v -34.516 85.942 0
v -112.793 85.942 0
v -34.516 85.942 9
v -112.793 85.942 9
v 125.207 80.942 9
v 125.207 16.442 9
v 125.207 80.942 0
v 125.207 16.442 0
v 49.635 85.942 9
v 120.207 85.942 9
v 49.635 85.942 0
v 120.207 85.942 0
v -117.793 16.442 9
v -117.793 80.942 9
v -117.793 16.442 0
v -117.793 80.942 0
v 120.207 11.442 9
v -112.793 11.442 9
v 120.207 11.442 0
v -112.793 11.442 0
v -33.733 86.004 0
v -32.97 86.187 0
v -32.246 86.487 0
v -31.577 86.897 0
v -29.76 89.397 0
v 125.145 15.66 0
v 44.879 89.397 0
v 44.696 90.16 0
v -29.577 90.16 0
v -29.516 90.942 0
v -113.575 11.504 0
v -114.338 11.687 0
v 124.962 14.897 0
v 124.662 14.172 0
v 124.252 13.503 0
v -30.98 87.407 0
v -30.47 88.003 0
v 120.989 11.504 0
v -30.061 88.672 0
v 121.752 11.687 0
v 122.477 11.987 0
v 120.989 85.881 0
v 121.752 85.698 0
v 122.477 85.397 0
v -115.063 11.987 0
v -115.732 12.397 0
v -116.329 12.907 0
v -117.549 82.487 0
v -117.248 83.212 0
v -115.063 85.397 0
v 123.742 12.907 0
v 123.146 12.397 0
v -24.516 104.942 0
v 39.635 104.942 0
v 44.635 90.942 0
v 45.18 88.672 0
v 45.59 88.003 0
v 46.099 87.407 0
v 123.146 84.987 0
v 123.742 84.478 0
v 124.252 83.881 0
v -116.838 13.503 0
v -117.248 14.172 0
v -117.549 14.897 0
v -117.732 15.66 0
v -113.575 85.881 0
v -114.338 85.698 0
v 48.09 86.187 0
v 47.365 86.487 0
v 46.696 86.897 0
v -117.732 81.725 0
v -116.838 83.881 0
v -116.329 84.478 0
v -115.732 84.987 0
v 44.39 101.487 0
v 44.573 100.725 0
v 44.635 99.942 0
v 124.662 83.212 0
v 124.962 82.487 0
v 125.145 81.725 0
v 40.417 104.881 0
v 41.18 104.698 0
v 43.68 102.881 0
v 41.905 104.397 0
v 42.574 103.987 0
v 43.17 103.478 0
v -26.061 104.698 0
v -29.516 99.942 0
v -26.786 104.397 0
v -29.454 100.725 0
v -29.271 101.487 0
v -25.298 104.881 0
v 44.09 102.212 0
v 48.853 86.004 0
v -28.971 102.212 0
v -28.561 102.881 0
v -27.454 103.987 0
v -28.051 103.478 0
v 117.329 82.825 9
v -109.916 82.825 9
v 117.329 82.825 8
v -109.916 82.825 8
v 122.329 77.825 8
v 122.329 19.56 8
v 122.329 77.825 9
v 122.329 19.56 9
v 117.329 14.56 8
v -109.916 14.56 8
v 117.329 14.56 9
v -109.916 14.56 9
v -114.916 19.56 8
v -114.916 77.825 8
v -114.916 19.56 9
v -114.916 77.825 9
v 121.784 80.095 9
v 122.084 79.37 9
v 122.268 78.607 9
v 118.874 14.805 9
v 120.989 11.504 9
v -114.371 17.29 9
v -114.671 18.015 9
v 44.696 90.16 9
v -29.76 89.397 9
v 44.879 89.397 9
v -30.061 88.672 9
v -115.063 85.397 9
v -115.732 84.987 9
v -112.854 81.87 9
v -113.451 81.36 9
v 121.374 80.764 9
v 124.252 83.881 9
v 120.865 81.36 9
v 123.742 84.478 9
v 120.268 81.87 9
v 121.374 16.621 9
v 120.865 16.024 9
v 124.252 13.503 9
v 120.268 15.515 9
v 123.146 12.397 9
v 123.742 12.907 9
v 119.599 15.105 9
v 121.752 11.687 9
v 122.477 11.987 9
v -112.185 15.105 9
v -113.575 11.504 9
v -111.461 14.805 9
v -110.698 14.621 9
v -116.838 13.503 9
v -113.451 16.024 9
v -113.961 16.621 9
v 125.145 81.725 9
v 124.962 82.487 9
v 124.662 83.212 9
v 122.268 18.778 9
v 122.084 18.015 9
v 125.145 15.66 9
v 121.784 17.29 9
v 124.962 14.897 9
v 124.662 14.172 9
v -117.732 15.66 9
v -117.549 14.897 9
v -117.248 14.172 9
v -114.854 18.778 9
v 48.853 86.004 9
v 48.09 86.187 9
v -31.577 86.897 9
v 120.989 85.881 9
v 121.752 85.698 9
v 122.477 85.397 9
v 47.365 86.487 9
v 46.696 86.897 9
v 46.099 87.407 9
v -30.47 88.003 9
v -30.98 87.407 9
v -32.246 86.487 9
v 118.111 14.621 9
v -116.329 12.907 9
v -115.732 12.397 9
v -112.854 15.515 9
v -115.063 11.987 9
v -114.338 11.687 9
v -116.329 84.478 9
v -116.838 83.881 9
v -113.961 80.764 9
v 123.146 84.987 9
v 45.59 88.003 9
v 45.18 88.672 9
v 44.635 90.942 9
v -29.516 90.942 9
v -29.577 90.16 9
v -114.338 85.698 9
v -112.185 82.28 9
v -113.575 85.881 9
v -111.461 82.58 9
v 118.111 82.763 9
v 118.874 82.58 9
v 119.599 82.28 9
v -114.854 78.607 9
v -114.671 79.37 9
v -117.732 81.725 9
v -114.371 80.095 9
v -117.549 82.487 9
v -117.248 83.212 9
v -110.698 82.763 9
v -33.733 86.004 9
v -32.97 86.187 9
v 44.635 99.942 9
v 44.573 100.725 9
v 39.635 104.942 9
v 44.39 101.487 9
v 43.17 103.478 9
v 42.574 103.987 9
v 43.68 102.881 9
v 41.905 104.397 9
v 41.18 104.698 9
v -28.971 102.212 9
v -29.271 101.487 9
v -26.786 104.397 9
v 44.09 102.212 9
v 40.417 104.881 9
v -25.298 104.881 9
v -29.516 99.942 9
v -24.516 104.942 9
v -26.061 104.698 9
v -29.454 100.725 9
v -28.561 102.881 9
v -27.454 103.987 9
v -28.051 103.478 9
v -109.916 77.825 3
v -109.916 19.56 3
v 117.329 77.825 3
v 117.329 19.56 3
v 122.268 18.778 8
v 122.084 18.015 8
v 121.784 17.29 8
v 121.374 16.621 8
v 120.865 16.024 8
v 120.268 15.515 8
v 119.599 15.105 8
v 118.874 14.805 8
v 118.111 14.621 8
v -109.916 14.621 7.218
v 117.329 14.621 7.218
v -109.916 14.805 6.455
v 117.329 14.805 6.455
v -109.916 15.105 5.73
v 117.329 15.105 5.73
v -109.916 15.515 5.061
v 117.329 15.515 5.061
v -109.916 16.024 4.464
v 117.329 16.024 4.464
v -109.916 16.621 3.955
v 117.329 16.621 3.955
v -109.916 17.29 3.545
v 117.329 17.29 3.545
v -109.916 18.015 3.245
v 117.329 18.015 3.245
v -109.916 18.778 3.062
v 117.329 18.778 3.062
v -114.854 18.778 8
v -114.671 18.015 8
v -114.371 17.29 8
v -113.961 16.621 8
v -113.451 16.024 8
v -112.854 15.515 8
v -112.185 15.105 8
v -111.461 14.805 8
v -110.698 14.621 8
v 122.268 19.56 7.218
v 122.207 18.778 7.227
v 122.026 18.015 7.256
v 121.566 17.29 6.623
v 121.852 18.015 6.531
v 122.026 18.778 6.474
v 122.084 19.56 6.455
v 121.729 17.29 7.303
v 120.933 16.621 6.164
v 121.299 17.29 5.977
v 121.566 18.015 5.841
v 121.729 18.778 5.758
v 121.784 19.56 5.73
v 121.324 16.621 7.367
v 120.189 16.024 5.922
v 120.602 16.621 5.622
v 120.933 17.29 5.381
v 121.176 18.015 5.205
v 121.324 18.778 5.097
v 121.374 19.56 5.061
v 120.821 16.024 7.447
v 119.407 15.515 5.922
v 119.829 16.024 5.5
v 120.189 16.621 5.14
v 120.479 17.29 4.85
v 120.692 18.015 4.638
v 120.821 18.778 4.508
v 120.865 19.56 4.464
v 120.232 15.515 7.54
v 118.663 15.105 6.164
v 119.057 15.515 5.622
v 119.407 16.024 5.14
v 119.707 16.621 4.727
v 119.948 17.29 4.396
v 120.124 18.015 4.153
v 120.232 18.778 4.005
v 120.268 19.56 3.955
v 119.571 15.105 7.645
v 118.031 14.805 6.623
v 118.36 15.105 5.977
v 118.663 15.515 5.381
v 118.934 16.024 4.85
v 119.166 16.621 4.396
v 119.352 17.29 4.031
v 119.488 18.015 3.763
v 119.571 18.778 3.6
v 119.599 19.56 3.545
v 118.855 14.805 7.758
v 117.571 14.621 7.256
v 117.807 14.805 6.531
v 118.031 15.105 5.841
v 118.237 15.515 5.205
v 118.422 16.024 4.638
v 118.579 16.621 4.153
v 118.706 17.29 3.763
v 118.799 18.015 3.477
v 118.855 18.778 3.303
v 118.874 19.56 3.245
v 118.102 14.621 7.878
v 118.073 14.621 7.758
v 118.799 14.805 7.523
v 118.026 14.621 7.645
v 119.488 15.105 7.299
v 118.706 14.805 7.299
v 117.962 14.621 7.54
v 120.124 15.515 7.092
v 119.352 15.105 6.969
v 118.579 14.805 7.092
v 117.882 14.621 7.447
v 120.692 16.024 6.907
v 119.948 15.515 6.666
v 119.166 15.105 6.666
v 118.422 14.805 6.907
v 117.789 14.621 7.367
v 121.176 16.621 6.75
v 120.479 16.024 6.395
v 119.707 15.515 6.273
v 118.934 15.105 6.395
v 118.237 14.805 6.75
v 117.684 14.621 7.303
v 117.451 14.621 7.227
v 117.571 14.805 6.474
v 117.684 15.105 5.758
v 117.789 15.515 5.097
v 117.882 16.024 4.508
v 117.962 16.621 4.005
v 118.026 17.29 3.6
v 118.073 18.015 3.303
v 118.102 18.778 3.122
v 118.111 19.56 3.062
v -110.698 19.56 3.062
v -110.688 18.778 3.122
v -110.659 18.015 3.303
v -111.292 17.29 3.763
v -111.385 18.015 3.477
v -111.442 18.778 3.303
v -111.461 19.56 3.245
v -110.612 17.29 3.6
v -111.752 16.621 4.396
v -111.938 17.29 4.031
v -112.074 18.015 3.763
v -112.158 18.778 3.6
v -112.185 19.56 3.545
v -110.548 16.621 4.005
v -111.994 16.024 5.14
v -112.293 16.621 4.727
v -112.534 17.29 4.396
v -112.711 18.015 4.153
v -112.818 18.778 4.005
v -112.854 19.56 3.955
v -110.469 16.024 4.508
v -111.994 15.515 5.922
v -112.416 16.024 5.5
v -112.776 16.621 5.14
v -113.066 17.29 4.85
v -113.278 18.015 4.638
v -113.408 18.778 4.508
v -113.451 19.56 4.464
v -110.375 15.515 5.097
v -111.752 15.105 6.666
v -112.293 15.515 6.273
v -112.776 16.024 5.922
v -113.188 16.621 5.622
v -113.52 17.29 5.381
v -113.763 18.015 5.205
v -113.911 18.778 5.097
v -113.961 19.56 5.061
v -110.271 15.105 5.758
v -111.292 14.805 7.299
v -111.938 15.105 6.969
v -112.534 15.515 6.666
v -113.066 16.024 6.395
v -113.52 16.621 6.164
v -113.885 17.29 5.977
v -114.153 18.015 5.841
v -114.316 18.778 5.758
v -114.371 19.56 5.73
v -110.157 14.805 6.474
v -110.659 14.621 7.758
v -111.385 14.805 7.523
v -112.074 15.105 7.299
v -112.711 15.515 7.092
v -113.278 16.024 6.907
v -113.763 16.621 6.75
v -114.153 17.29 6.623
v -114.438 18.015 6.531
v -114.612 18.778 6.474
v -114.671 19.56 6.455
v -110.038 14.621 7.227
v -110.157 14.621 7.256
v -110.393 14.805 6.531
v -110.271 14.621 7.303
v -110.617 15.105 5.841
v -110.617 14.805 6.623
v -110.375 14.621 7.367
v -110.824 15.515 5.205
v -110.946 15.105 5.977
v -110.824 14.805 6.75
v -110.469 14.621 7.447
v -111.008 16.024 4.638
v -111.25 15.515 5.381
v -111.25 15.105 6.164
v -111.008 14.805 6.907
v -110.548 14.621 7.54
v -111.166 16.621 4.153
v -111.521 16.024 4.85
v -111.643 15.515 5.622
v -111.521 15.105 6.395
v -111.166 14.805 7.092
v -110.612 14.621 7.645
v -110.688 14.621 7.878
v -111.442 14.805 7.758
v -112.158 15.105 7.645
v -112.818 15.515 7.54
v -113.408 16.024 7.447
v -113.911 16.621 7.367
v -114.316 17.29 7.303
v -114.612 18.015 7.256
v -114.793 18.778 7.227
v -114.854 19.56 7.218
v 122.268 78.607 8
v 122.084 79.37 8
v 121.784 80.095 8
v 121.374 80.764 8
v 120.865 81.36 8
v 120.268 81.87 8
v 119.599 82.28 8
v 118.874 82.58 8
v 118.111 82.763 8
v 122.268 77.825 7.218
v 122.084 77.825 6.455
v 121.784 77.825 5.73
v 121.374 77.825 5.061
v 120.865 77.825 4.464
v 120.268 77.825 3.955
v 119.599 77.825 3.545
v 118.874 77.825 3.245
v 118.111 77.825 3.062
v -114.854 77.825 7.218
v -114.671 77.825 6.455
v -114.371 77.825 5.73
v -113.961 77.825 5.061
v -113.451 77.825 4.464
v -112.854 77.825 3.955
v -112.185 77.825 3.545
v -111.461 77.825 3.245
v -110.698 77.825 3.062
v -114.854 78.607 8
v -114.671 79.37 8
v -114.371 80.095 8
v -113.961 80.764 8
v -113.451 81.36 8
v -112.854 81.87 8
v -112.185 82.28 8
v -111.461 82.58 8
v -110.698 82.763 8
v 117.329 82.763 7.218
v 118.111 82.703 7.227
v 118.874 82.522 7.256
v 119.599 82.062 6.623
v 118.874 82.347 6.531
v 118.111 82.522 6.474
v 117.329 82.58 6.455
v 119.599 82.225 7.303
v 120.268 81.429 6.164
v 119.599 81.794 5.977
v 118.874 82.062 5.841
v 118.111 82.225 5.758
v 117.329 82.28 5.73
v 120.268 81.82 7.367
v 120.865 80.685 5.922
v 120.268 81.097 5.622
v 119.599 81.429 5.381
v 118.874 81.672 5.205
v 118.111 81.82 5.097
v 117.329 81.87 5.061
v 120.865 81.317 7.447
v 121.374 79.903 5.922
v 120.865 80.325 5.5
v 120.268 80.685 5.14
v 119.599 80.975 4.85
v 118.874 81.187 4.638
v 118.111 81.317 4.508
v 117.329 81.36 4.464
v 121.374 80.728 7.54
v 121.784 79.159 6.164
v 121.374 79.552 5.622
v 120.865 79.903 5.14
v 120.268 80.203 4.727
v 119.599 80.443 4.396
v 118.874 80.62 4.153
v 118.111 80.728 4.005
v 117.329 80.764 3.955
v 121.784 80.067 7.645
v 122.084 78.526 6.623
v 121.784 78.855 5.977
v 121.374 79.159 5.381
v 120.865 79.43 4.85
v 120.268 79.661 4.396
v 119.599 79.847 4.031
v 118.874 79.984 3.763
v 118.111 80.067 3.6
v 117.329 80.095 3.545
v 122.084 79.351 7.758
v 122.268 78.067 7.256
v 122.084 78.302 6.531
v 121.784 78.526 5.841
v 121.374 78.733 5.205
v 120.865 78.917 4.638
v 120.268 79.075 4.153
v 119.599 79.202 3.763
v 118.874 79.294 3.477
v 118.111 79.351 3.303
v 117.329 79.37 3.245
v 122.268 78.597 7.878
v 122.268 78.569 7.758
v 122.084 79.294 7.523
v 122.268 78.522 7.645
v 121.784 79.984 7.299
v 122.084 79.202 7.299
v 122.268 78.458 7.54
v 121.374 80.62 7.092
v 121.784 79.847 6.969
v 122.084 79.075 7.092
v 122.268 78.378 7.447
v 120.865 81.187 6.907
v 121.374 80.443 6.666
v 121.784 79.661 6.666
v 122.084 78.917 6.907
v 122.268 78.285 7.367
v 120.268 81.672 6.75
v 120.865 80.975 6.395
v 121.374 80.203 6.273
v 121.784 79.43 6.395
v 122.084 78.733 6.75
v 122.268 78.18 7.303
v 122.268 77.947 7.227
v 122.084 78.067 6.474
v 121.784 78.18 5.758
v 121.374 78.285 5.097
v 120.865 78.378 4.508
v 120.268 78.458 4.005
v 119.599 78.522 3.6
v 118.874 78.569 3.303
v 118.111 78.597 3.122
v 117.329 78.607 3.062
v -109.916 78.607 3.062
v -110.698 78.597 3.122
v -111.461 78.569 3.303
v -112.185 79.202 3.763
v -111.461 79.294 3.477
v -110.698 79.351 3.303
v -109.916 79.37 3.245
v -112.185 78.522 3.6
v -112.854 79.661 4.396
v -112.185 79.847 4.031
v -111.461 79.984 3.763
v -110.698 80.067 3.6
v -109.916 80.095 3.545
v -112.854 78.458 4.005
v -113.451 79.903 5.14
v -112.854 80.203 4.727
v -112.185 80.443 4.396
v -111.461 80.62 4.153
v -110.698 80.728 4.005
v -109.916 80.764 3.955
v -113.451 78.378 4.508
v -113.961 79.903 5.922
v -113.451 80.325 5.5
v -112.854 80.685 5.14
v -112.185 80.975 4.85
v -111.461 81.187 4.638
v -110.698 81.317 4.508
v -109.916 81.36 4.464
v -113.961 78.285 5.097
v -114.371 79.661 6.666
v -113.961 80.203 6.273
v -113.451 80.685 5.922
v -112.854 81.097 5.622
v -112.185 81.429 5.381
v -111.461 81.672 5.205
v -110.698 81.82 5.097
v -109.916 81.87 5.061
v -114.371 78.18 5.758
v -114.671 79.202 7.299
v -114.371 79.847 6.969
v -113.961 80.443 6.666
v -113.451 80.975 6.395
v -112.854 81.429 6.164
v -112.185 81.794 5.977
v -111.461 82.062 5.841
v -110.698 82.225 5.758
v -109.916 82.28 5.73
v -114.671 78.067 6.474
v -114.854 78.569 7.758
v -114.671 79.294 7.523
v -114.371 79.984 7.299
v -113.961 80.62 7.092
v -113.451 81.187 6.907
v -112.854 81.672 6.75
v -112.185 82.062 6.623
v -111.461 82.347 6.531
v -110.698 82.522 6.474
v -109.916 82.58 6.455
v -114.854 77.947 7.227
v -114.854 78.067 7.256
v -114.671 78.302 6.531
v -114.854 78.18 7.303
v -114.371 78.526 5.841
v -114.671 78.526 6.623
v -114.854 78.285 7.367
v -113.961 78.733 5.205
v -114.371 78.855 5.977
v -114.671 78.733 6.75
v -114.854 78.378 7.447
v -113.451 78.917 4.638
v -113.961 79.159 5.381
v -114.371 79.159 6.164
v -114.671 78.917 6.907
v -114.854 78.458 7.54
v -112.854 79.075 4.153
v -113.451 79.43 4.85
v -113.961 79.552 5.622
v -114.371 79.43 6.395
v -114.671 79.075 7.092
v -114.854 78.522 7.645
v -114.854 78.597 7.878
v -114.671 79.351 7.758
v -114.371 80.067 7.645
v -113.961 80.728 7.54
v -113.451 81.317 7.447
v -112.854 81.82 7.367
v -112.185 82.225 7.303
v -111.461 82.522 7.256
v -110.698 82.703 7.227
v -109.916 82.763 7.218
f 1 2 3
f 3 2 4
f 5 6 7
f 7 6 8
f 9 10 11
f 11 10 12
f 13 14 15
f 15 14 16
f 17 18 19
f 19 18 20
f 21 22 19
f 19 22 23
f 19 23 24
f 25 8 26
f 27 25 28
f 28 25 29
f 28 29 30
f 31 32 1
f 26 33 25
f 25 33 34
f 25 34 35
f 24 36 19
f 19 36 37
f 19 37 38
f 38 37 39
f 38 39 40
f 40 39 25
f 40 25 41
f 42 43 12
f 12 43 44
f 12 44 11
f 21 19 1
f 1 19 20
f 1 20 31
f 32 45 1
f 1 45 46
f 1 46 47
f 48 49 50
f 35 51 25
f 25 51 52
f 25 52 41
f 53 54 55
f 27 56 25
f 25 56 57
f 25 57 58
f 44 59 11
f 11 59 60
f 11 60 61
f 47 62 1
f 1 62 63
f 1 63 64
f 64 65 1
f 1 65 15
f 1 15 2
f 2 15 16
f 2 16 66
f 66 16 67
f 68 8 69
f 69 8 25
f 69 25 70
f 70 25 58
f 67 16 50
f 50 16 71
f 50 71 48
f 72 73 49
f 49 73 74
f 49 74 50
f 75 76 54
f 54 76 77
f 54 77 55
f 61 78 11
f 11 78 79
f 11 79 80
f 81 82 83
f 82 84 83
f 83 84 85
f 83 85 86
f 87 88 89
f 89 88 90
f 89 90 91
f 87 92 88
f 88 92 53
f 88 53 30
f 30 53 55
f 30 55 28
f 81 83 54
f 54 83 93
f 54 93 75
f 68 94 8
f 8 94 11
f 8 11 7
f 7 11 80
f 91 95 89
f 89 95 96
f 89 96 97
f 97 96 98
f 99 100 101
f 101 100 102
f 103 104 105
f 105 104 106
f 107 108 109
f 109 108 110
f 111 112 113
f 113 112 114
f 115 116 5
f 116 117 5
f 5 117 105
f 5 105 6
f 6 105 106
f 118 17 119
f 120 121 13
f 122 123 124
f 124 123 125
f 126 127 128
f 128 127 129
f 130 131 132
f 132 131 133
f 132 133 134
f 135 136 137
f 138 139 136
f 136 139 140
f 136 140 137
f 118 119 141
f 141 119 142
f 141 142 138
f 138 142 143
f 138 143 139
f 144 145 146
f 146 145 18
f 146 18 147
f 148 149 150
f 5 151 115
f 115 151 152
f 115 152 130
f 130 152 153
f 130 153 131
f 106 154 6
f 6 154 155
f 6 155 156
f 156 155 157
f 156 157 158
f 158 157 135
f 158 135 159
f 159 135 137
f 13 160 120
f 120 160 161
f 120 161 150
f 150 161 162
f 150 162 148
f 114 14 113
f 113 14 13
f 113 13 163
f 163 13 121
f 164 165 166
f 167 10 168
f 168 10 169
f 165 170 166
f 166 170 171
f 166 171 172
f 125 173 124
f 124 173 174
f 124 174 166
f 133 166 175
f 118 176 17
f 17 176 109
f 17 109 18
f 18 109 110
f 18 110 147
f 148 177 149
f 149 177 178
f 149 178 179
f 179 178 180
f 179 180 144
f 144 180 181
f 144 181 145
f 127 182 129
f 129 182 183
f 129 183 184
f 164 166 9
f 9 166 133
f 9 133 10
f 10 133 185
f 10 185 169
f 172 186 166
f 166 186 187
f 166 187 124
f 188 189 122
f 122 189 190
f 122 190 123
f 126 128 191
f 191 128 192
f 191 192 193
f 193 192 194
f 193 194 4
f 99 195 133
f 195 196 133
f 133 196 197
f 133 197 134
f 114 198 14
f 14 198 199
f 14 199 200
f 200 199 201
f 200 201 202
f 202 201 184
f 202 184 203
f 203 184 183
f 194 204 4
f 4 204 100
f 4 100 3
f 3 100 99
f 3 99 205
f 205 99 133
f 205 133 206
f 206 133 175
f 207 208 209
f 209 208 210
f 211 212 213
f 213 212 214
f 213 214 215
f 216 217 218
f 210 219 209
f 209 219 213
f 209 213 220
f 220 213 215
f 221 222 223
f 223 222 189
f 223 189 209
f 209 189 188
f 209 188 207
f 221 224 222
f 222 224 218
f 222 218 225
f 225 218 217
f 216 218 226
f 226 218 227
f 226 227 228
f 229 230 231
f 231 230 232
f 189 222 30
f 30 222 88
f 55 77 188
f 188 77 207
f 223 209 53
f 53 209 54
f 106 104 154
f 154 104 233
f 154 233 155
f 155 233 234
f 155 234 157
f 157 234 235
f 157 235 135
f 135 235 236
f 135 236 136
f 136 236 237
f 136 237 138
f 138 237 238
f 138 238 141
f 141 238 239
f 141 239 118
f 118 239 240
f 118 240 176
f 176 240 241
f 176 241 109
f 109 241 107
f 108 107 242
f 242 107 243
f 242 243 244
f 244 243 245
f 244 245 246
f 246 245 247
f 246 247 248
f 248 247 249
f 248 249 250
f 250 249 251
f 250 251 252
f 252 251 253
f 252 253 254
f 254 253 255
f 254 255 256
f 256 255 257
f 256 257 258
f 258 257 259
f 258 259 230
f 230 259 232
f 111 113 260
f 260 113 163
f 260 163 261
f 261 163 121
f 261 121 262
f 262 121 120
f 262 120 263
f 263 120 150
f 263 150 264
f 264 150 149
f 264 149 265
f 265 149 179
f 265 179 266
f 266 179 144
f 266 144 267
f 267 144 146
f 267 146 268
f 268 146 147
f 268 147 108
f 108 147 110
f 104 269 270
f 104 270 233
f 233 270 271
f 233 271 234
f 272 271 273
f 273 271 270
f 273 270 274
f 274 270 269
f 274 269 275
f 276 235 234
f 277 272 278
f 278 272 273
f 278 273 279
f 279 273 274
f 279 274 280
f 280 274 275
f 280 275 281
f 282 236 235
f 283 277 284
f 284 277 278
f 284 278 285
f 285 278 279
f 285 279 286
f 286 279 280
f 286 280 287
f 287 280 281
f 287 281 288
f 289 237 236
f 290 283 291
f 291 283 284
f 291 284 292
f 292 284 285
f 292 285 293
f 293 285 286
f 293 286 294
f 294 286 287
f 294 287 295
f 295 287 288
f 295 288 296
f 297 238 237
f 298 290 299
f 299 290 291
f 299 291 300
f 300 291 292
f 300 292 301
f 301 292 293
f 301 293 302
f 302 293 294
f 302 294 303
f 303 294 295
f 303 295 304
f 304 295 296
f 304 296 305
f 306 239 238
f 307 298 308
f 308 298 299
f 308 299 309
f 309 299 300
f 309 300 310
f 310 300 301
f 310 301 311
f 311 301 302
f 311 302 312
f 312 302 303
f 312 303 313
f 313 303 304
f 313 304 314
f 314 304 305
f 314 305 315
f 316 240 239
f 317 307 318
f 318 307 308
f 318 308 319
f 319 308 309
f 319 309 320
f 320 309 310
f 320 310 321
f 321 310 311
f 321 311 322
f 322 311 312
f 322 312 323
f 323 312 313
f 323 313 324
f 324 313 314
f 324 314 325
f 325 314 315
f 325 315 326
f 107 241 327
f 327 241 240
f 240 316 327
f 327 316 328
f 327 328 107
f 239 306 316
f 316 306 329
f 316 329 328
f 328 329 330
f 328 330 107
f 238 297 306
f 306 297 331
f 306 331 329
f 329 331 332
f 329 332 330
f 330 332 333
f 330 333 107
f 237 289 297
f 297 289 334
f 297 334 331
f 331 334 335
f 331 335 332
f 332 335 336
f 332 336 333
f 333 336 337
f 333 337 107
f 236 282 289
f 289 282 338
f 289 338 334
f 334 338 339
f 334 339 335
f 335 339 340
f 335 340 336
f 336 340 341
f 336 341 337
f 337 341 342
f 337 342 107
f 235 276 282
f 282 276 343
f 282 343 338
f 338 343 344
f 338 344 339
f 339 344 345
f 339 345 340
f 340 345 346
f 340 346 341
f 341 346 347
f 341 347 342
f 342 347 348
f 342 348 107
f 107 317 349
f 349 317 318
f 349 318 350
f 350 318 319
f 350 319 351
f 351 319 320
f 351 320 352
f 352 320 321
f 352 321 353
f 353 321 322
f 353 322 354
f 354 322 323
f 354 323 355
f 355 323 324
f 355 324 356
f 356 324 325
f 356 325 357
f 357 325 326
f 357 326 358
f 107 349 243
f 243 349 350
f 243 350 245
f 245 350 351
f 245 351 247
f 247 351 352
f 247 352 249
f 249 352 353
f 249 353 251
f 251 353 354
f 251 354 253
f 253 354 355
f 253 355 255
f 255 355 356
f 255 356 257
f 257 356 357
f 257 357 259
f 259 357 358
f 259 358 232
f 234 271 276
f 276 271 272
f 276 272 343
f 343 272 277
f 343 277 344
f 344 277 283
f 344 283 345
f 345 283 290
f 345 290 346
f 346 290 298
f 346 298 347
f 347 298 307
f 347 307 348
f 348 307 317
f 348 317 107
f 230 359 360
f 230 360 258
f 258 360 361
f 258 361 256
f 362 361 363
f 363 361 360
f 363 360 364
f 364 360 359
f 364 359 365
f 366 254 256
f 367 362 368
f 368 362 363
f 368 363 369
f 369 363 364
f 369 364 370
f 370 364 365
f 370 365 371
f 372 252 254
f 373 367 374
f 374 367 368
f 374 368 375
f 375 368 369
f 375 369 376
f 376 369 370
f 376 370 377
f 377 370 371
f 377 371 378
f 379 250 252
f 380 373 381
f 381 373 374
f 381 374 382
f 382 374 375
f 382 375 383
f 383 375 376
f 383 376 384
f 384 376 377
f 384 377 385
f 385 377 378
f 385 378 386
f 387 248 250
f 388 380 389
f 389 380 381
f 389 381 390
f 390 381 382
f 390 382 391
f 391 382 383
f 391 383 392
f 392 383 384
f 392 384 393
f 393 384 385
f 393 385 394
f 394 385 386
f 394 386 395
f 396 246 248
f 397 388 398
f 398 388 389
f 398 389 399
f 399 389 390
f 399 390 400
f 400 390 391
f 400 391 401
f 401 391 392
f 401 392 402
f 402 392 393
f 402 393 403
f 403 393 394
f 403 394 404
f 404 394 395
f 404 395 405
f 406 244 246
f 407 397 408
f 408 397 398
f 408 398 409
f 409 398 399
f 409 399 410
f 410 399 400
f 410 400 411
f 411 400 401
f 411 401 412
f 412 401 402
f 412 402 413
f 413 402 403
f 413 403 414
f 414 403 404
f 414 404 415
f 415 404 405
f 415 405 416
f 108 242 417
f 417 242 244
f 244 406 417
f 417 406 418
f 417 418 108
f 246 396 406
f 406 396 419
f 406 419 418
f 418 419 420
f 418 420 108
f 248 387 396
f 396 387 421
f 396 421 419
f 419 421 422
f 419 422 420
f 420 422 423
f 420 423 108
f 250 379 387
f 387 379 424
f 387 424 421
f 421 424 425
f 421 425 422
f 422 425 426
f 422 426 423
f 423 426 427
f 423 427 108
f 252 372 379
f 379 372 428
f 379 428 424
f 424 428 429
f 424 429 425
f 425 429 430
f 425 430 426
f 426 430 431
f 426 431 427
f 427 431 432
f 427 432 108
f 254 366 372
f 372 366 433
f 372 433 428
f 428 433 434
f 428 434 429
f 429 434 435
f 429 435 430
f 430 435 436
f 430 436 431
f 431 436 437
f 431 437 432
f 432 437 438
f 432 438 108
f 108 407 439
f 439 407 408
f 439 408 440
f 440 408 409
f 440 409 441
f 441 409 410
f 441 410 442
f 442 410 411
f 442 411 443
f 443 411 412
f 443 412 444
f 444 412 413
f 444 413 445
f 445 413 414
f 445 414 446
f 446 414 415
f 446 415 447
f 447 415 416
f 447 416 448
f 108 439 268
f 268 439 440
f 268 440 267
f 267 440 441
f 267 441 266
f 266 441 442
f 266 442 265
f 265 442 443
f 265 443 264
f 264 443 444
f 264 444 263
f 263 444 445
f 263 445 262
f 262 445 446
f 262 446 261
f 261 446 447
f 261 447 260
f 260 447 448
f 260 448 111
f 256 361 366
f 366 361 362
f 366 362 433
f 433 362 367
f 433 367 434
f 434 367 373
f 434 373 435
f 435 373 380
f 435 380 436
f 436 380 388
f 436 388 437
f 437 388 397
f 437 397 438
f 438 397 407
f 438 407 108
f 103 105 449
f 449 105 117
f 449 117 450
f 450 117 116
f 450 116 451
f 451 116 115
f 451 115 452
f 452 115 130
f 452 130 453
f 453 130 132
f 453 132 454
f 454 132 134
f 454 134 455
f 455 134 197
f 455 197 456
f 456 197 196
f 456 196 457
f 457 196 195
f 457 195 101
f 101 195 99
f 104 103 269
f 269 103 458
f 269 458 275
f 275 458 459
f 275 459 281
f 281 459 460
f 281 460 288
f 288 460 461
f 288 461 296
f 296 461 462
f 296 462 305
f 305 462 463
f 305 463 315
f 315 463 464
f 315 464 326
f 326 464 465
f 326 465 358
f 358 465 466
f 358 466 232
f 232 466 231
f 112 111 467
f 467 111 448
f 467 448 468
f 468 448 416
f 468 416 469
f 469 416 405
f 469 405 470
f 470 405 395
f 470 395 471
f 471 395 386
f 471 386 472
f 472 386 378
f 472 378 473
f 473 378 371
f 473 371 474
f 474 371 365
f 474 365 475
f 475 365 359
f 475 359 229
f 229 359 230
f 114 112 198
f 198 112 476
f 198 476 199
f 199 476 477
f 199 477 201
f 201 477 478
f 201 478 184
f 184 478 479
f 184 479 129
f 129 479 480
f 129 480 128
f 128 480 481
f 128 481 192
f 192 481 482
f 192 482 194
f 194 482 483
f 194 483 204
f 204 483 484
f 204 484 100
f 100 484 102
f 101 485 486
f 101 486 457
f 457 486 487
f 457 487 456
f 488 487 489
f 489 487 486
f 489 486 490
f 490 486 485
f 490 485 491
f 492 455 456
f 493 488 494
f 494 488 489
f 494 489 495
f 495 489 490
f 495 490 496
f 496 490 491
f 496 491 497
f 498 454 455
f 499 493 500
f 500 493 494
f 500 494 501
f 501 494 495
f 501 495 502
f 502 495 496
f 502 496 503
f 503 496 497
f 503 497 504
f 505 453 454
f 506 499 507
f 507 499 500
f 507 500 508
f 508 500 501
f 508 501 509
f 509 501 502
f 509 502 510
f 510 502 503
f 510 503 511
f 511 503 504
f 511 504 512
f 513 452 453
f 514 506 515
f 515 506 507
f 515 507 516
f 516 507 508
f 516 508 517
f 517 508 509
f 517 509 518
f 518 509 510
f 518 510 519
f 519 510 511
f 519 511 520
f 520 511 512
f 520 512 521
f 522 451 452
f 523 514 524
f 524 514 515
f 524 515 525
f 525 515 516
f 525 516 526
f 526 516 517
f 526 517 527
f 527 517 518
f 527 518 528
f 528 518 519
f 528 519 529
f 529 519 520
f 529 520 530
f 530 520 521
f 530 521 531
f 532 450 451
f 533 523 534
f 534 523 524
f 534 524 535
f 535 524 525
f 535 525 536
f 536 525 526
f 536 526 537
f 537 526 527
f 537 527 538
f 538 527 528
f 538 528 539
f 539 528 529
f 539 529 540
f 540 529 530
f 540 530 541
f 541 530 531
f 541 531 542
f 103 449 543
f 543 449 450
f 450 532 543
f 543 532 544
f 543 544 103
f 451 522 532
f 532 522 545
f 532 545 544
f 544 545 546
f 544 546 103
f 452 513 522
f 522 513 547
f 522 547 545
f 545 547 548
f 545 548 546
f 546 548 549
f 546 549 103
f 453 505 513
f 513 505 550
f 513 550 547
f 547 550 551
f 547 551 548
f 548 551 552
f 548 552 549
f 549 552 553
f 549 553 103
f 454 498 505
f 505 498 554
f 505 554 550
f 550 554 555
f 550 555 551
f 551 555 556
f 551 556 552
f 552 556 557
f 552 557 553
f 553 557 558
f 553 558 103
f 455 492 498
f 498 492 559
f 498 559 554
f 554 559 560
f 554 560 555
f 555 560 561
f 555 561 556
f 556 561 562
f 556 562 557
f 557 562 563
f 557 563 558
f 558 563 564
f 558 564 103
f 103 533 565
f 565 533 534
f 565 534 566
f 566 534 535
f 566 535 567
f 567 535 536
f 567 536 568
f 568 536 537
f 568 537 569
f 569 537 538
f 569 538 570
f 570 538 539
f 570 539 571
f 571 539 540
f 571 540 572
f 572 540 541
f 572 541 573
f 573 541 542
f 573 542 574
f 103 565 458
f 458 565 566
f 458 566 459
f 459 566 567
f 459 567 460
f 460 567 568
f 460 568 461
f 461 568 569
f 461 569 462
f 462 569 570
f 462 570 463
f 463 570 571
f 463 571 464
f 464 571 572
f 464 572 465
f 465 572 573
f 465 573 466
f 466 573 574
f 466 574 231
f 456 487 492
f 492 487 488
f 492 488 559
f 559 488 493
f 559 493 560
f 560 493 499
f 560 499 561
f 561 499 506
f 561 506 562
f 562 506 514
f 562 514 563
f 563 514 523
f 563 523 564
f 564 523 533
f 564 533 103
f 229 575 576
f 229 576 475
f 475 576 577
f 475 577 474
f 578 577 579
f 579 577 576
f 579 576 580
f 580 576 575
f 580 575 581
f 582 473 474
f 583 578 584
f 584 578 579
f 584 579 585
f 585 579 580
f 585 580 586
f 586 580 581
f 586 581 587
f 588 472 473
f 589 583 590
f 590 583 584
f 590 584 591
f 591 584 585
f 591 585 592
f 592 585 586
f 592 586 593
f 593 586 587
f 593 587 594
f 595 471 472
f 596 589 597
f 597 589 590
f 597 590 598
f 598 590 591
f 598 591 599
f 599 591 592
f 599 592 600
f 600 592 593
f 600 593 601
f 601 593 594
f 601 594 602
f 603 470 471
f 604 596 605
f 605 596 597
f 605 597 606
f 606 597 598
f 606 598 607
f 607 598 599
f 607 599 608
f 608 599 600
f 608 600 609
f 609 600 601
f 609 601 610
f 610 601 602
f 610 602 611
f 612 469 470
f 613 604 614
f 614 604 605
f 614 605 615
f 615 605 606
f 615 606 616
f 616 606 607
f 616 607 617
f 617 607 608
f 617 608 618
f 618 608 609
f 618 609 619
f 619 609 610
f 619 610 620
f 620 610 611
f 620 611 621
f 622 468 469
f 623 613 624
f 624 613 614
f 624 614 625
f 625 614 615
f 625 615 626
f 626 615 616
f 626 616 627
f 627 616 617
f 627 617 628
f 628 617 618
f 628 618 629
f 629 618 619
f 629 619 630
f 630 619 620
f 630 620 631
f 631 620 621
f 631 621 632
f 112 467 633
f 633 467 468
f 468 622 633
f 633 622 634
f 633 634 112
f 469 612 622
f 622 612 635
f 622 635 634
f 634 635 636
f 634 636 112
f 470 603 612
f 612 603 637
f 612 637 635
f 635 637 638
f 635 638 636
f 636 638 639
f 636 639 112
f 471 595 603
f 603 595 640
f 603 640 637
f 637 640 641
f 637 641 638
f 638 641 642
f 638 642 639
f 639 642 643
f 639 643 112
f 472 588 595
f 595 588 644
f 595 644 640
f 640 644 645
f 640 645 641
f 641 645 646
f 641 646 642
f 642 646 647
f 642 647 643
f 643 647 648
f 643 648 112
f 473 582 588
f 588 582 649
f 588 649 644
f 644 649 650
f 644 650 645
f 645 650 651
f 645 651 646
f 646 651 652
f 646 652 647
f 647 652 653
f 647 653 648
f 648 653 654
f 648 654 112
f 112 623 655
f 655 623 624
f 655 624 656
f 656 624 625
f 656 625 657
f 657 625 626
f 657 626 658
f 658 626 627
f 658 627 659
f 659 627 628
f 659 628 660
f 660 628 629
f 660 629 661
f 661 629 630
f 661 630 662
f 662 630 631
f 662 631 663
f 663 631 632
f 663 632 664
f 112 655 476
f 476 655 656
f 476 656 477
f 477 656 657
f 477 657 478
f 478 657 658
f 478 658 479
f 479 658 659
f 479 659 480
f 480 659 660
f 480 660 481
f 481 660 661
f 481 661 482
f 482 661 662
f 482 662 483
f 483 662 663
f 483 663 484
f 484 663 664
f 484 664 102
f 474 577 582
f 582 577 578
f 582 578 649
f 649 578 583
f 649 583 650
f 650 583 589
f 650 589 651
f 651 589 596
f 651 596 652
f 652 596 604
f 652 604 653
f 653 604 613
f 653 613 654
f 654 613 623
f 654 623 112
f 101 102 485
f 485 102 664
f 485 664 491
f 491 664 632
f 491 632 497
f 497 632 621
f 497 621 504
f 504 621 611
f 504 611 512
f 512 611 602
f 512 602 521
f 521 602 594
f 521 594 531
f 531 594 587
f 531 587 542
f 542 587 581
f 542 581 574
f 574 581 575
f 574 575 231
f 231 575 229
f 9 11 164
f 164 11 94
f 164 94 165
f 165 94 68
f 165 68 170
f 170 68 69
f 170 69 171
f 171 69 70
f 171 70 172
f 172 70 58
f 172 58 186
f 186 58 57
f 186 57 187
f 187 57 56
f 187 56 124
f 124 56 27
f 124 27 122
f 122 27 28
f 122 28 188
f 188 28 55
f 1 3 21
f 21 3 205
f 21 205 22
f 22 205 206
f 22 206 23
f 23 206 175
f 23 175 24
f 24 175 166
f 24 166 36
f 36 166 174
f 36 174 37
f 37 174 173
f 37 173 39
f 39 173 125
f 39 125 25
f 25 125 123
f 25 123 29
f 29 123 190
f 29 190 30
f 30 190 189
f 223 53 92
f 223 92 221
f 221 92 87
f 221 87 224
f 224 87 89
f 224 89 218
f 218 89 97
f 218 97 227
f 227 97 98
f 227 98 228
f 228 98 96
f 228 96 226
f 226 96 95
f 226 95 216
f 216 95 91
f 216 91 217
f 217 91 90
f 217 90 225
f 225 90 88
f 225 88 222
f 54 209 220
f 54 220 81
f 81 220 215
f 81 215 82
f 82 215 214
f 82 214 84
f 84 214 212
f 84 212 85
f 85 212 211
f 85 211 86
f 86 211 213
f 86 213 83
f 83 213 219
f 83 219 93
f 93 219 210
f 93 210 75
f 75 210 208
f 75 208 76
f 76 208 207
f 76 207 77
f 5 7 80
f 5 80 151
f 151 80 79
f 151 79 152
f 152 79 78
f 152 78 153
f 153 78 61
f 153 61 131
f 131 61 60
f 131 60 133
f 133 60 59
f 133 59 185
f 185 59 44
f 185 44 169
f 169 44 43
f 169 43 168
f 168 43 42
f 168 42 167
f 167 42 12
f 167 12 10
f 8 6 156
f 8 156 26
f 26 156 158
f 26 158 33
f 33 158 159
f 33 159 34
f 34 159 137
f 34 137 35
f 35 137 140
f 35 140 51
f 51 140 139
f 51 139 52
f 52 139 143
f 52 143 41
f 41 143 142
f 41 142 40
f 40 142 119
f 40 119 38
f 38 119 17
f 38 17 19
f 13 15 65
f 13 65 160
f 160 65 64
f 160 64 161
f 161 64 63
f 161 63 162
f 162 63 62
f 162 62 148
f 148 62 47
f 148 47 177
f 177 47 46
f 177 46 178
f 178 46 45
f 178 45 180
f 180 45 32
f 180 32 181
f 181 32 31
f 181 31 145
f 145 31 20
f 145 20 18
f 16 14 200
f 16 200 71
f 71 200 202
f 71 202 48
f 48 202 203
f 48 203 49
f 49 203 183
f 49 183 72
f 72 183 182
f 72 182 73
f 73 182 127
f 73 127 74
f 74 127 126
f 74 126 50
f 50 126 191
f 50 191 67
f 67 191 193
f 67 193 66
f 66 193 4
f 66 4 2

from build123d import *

# Parameters (mm, degrees)
SKETCH2_W           = 243
SKETCH2_H           = 74.5
BOSS_EXTRUDE1_DEPTH = 3
SKETCH2_3_W         = 243
SKETCH2_3_H         = 74.5
SKETCH2_3_W_2       = 237.244602054
SKETCH2_3_H_2       = 68.264985558
BOSS_EXTRUDE2_DEPTH = 9
SKETCH3_W           = 74.150238013
SKETCH3_H           = 9
BOSS_EXTRUDE4_DEPTH = 19
FILLET1_R           = 5


with BuildPart() as part:
    # Sketch2 → Boss-Extrude1 (new body)
    with BuildSketch(Plane.XY):
        with Locations((3.706779661, 48.692372881)):
            Rectangle(SKETCH2_W, SKETCH2_H)
    extrude(amount=BOSS_EXTRUDE1_DEPTH)

    # Sketch2<3> → Boss-Extrude2 (add)
    with BuildSketch(Plane.XY):
        with Locations((3.706779661, 48.692372881)):
            Rectangle(SKETCH2_3_W, SKETCH2_3_H)
        with Locations((3.706779661, 48.692372881)):
            Rectangle(SKETCH2_3_W_2, SKETCH2_3_H_2, mode=Mode.SUBTRACT)
    extrude(amount=BOSS_EXTRUDE2_DEPTH)

    # Sketch3 → Boss-Extrude4 (add)
    with BuildSketch(Plane(origin=(0, 85.942372881, 0), x_dir=(1, 0, 0), z_dir=(0, 1, 0))):
        with Locations((7.559560342, -4.5)):
            Rectangle(SKETCH3_W, SKETCH3_H)
    extrude(amount=BOSS_EXTRUDE4_DEPTH)

    # Fillet1
    fillet1_edges = [part.edges().sort_by_distance(p)[0] for p in [
        (3.706779661, 82.82486566, 3),
        (-114.915521366, 48.692372881, 3),
        (3.706779661, 14.559880102, 3),
        (122.329080688, 48.692372881, 3),
        (44.634679348, 85.942372881, 4.5),
        (-29.515558665, 85.942372881, 4.5),
        (-29.515558665, 104.942372881, 4.5),
        (44.634679348, 104.942372881, 4.5),
        (122.329080688, 82.82486566, 6),
        (125.206779661, 85.942372881, 4.5),
        (122.329080688, 14.559880102, 6),
        (125.206779661, 11.442372881, 4.5),
        (-114.915521366, 14.559880102, 6),
        (-114.915521366, 82.82486566, 6),
        (-117.793220339, 11.442372881, 4.5),
        (-117.793220339, 85.942372881, 4.5),
    ]]
    fillet(fillet1_edges, radius=FILLET1_R)


solid = part.part
